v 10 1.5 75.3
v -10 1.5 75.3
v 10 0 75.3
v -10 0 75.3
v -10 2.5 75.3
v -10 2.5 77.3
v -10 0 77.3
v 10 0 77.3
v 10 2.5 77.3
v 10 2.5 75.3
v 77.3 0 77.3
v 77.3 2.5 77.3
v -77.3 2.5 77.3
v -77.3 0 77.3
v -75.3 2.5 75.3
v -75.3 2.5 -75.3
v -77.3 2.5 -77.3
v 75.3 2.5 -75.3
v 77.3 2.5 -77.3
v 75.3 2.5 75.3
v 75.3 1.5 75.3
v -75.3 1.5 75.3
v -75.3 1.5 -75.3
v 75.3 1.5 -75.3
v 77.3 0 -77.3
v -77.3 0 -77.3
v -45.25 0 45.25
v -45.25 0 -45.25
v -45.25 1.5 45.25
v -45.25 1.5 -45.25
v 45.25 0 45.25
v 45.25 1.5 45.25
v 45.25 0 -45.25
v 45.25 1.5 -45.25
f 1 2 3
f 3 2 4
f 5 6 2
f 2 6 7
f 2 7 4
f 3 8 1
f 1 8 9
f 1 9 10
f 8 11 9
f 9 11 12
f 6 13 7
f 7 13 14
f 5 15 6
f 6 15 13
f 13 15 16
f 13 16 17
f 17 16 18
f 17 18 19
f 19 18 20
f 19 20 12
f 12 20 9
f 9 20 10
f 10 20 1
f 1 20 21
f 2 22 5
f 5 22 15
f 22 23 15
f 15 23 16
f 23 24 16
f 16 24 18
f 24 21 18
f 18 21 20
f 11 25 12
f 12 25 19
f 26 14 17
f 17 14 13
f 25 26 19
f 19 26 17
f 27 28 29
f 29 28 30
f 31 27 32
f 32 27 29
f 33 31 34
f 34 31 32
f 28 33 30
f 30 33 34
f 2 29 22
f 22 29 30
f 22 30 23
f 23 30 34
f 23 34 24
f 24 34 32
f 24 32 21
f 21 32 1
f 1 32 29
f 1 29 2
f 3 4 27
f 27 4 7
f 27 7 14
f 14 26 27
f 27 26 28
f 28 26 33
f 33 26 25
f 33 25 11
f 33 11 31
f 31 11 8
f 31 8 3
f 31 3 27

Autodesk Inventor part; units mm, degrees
ref_plane "YZ Plane" through (0, 0, 0) normal (1, 0, 0) x (0, 1, 0)
ref_plane "XZ Plane" through (0, 0, 0) normal (0, 1, 0) x (-1, 0, 0)
ref_plane "XY Plane" through (0, 0, 0) normal (0, 0, 1) x (1, 0, 0)
sketch "Sketch1" plane through (0, 0, 0) normal (0, 1, 0) x (-1, 0, 0)
  line L0 (45.25, -45.25) -> (-45.25, -45.25)
  line L1 (-45.25, -45.25) -> (-45.25, 45.25)
  line L2 (-45.25, 45.25) -> (45.25, 45.25)
  line L3 (45.25, 45.25) -> (45.25, -45.25)
  line L4 (75.3, -75.3) -> (-75.3, -75.3)
  line L5 (-75.3, -75.3) -> (-75.3, 75.3)
  line L6 (-75.3, 75.3) -> (75.3, 75.3)
  line L7 (75.3, 75.3) -> (75.3, -75.3)
  line L8 (-77.3, 77.3) -> (-77.3, -77.3)
  line L9 (-77.3, -77.3) -> (77.3, -77.3)
  line L10 (77.3, -77.3) -> (77.3, 77.3)
  line L11 (77.3, 77.3) -> (-77.3, 77.3)
  point P0 (0, 0)
  point P1 (-45.25, 0)
  point P2 (0, -45.25)
  point P3 (-75.3, 0)
  point P4 (0, -75.3)
  dimension "d0" = 90.5
  dimension "d1" = 150.6
  dimension "d2" = 2
extrude "Extrusion1" add sketch "Sketch1" along normal blind 1.5 contours L4 L5 L6 L7
extrude "Extrusion2" add sketch "Sketch1" along normal blind 2.5 contours L11 L10 L9 L8
sketch "Sketch2" plane through (75.3, 1.5, 75.3) normal (0, 0, -1) x (-1, 0, 0)
  point P0 (75.3, -1.5)
sketch "Sketch3" plane through (-77.3, 0, 77.3) normal (0, 0, 1) x (1, 0, 0)
  line L0 (152.6, 2.5) -> (2, 2.5) projected
  line L1 (67.3, 2.5) -> (87.3, 2.5)
  line L2 (87.3, 2.5) -> (87.3, 0)
  line L3 (87.3, 0) -> (67.3, 0)
  line L4 (67.3, 0) -> (67.3, 2.5)
  line L5 (0, 0) -> (154.6, 0) projected
  line L6 (2, 1.5) -> (152.6, 1.5) projected
  line L7 (152.6, 1.5) -> (2, 1.5) projected
  line L8 (32.05, 1.5) -> (122.55, 1.5) projected
  line L9 (122.55, 1.5) -> (32.05, 1.5) projected
  point P0 (77.3, 0)
  point P1 (77.3, 0)
  point P2 (77.3, 0)
  dimension "d7" = 20
extrude "Extrusion3" cut sketch "Sketch3" against normal up to surface (2 mm away)
properties part number "15cmPasteMaskTemplate_3DPrint"
